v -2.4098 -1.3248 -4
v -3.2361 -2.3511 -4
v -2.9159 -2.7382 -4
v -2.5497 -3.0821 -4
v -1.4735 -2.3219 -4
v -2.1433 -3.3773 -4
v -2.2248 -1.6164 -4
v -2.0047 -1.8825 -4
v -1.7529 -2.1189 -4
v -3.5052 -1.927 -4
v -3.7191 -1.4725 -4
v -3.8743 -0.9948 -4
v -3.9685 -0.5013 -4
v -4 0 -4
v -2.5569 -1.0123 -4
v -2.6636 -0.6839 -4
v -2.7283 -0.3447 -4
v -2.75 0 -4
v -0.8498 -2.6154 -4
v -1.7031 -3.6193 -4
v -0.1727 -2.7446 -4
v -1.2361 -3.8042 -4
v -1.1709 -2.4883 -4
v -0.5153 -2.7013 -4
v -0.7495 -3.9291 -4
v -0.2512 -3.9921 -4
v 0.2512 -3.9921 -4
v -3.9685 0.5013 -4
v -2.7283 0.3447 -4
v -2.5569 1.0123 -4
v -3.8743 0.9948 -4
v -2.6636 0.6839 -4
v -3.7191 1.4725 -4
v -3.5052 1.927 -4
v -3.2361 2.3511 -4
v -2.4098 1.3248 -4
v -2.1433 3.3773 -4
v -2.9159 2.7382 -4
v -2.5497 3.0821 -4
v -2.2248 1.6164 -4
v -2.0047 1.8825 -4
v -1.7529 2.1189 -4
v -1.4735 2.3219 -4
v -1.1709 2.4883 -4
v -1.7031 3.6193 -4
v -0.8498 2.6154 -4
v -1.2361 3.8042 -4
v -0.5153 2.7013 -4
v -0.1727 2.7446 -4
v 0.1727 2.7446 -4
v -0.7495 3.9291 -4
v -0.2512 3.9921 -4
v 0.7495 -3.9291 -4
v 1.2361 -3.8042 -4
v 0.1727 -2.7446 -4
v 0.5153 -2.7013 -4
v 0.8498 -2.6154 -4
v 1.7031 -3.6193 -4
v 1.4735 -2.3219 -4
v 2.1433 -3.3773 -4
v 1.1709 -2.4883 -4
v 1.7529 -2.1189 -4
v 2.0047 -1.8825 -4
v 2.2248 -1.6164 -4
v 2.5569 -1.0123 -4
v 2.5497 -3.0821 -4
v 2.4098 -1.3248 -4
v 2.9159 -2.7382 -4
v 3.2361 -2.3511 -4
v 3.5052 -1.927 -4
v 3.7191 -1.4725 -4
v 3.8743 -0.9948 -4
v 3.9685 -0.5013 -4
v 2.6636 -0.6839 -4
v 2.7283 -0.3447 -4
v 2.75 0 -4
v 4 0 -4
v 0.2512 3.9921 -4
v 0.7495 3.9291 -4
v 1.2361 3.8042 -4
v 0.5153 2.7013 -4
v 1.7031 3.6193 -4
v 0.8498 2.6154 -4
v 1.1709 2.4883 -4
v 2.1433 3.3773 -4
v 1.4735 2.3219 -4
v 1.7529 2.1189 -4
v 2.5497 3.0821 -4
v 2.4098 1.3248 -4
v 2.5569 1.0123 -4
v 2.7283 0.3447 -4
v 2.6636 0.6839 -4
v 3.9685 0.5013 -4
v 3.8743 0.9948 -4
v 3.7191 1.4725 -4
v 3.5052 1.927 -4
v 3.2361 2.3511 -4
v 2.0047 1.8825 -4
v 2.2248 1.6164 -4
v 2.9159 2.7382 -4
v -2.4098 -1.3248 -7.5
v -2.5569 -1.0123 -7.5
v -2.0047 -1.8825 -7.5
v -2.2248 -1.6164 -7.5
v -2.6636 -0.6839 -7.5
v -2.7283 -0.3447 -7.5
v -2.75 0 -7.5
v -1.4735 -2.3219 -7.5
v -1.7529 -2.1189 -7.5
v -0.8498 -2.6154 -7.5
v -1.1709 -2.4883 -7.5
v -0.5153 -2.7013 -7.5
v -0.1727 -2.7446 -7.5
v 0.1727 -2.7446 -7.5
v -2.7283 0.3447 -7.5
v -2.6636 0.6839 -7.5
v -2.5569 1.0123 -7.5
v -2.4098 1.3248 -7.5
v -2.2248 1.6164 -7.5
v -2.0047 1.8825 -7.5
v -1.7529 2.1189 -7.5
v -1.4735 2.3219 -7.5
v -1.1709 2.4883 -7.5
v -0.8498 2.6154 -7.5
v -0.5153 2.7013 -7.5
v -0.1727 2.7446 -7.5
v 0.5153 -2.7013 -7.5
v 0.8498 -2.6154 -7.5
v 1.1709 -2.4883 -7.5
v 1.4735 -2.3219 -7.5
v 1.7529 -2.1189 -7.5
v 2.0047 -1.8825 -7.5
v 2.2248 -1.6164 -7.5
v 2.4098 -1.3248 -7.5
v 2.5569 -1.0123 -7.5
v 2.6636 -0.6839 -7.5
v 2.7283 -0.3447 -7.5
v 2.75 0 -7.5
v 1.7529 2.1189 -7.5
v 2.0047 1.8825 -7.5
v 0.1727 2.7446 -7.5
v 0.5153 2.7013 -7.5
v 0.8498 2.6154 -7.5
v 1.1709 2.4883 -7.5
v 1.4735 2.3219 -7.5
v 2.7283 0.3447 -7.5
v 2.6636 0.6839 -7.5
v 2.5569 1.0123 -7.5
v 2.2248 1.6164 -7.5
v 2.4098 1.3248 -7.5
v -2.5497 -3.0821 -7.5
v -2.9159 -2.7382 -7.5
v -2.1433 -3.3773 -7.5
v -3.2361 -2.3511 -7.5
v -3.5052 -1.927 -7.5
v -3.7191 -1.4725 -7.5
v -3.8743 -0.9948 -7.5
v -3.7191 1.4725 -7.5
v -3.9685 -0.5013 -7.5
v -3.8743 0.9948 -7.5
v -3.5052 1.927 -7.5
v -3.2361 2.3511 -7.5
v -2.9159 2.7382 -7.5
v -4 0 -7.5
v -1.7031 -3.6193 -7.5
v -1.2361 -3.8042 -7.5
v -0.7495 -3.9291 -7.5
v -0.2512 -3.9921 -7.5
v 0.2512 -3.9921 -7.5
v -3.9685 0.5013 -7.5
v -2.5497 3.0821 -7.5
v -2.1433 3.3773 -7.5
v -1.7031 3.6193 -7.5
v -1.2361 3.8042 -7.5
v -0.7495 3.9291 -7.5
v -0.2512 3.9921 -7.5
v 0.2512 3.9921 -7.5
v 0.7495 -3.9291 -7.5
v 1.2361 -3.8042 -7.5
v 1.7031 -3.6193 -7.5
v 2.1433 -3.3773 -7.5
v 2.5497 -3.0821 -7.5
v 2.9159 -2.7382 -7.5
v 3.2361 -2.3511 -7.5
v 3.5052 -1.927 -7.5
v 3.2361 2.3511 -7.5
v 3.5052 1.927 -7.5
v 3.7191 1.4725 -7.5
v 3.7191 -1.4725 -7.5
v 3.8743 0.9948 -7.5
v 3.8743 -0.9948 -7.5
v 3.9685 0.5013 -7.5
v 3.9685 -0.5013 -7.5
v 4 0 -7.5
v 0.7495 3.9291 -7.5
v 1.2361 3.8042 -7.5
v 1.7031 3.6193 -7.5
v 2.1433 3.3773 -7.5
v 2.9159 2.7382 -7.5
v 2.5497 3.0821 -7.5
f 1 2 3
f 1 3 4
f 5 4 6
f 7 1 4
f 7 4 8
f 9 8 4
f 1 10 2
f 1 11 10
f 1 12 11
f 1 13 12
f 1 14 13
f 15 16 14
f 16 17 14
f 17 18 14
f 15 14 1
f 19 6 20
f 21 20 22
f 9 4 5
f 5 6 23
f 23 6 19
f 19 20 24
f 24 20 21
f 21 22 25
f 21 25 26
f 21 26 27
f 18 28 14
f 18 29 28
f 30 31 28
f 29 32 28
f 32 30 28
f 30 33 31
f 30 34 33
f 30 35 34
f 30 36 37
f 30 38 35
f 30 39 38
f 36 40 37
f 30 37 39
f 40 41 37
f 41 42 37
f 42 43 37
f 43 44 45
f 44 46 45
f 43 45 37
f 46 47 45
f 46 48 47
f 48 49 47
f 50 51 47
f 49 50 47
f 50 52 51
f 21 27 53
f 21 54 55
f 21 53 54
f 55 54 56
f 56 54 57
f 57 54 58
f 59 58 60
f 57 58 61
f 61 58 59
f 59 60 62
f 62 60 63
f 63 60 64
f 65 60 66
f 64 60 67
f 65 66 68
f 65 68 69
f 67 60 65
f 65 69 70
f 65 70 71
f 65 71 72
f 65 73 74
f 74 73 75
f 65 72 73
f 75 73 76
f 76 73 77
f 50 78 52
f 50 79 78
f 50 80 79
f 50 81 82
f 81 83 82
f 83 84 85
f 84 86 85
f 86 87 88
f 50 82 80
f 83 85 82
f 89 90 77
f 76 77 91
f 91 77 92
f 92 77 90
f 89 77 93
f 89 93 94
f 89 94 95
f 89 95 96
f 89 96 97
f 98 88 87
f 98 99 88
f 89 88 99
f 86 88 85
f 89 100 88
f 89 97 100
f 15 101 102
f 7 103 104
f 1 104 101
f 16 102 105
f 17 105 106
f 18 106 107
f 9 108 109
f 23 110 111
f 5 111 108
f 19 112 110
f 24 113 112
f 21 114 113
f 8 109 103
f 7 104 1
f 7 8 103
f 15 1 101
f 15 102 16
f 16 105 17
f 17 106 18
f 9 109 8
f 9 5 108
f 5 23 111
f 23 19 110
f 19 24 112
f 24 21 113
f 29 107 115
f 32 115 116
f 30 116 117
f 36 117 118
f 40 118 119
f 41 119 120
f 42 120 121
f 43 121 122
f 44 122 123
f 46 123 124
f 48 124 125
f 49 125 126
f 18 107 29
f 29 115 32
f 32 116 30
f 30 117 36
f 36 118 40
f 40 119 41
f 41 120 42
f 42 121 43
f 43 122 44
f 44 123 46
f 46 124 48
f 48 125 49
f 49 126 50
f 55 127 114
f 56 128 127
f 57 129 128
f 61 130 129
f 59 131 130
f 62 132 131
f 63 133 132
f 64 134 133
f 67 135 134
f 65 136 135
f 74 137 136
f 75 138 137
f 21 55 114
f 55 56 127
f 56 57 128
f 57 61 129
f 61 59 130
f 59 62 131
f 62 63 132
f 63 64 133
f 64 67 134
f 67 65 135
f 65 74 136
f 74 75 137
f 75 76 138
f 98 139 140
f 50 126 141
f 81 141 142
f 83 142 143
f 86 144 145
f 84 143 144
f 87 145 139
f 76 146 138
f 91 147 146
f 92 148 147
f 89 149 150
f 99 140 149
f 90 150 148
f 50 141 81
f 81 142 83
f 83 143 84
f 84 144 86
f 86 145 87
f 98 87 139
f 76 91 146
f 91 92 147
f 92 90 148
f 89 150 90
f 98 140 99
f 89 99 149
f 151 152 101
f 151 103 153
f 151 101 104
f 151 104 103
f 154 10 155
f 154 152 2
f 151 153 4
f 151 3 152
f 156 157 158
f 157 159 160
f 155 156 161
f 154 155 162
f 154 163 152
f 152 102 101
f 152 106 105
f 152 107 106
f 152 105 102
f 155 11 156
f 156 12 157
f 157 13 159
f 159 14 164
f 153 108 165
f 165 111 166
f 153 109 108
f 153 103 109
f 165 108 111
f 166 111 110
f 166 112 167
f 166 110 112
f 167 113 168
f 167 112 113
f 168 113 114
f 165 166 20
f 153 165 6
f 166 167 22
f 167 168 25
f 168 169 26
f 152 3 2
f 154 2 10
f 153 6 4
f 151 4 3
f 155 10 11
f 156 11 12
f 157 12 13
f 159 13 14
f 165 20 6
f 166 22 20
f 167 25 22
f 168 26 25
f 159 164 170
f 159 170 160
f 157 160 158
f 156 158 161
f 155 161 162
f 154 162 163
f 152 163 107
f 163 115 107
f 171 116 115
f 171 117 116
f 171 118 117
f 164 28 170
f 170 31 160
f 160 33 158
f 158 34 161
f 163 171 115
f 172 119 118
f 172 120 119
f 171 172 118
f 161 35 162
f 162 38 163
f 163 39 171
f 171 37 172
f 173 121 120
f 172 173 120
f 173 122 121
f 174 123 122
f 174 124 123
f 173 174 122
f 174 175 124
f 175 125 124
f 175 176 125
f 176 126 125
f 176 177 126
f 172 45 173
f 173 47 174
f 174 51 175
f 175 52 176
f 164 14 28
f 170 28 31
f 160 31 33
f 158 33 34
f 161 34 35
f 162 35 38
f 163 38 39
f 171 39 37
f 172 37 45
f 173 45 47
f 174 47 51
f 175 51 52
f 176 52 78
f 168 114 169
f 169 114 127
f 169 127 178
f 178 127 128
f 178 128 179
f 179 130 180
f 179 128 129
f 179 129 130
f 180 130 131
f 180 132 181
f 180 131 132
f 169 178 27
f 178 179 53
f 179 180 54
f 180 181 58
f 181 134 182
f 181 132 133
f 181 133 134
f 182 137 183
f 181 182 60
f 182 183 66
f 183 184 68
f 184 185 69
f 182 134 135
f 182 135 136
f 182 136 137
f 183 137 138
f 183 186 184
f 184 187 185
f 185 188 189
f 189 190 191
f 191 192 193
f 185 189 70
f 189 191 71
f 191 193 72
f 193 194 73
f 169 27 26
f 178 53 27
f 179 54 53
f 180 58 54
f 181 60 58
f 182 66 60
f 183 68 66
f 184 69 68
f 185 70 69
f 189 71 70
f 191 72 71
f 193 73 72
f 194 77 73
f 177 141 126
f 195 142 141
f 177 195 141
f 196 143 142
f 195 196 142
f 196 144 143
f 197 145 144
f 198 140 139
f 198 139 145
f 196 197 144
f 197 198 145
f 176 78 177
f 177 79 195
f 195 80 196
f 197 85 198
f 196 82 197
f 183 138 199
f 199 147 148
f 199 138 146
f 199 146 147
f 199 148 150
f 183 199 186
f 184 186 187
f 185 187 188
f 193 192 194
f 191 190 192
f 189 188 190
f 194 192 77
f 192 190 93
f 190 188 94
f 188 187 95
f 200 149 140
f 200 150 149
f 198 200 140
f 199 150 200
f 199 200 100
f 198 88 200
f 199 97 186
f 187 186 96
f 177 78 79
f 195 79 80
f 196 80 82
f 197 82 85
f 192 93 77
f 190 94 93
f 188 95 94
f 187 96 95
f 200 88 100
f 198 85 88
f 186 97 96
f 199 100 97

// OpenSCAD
$fn = 50;

difference() {
	union() {
		translate(v = [0, 0, -7.5]) {
			cylinder(h = 7.5, r = 4.0);
		}
	}
	union() {
		translate(v = [0, 0, 0]) {
			rotate(a = [0, 0, 0]) {
				difference() {
					union() {
						translate(v = [0, 0, -4]) {
							linear_extrude(height = 4) {
								polygon(points = [[4.8468, 0.0], [2.4234000000000004, 4.197451927062417], [-2.423399999999999, 4.197451927062417], [-4.8468, 5.935618106107392e-16], [-2.423400000000002, -4.197451927062416], [2.423399999999997, -4.197451927062419]]);
							}
						}
					}
					union();
				}
			}
		}
		#translate(v = [0, 0, -100.0]) {
			cylinder(h = 200, r = 2.75);
		}
	}
}
